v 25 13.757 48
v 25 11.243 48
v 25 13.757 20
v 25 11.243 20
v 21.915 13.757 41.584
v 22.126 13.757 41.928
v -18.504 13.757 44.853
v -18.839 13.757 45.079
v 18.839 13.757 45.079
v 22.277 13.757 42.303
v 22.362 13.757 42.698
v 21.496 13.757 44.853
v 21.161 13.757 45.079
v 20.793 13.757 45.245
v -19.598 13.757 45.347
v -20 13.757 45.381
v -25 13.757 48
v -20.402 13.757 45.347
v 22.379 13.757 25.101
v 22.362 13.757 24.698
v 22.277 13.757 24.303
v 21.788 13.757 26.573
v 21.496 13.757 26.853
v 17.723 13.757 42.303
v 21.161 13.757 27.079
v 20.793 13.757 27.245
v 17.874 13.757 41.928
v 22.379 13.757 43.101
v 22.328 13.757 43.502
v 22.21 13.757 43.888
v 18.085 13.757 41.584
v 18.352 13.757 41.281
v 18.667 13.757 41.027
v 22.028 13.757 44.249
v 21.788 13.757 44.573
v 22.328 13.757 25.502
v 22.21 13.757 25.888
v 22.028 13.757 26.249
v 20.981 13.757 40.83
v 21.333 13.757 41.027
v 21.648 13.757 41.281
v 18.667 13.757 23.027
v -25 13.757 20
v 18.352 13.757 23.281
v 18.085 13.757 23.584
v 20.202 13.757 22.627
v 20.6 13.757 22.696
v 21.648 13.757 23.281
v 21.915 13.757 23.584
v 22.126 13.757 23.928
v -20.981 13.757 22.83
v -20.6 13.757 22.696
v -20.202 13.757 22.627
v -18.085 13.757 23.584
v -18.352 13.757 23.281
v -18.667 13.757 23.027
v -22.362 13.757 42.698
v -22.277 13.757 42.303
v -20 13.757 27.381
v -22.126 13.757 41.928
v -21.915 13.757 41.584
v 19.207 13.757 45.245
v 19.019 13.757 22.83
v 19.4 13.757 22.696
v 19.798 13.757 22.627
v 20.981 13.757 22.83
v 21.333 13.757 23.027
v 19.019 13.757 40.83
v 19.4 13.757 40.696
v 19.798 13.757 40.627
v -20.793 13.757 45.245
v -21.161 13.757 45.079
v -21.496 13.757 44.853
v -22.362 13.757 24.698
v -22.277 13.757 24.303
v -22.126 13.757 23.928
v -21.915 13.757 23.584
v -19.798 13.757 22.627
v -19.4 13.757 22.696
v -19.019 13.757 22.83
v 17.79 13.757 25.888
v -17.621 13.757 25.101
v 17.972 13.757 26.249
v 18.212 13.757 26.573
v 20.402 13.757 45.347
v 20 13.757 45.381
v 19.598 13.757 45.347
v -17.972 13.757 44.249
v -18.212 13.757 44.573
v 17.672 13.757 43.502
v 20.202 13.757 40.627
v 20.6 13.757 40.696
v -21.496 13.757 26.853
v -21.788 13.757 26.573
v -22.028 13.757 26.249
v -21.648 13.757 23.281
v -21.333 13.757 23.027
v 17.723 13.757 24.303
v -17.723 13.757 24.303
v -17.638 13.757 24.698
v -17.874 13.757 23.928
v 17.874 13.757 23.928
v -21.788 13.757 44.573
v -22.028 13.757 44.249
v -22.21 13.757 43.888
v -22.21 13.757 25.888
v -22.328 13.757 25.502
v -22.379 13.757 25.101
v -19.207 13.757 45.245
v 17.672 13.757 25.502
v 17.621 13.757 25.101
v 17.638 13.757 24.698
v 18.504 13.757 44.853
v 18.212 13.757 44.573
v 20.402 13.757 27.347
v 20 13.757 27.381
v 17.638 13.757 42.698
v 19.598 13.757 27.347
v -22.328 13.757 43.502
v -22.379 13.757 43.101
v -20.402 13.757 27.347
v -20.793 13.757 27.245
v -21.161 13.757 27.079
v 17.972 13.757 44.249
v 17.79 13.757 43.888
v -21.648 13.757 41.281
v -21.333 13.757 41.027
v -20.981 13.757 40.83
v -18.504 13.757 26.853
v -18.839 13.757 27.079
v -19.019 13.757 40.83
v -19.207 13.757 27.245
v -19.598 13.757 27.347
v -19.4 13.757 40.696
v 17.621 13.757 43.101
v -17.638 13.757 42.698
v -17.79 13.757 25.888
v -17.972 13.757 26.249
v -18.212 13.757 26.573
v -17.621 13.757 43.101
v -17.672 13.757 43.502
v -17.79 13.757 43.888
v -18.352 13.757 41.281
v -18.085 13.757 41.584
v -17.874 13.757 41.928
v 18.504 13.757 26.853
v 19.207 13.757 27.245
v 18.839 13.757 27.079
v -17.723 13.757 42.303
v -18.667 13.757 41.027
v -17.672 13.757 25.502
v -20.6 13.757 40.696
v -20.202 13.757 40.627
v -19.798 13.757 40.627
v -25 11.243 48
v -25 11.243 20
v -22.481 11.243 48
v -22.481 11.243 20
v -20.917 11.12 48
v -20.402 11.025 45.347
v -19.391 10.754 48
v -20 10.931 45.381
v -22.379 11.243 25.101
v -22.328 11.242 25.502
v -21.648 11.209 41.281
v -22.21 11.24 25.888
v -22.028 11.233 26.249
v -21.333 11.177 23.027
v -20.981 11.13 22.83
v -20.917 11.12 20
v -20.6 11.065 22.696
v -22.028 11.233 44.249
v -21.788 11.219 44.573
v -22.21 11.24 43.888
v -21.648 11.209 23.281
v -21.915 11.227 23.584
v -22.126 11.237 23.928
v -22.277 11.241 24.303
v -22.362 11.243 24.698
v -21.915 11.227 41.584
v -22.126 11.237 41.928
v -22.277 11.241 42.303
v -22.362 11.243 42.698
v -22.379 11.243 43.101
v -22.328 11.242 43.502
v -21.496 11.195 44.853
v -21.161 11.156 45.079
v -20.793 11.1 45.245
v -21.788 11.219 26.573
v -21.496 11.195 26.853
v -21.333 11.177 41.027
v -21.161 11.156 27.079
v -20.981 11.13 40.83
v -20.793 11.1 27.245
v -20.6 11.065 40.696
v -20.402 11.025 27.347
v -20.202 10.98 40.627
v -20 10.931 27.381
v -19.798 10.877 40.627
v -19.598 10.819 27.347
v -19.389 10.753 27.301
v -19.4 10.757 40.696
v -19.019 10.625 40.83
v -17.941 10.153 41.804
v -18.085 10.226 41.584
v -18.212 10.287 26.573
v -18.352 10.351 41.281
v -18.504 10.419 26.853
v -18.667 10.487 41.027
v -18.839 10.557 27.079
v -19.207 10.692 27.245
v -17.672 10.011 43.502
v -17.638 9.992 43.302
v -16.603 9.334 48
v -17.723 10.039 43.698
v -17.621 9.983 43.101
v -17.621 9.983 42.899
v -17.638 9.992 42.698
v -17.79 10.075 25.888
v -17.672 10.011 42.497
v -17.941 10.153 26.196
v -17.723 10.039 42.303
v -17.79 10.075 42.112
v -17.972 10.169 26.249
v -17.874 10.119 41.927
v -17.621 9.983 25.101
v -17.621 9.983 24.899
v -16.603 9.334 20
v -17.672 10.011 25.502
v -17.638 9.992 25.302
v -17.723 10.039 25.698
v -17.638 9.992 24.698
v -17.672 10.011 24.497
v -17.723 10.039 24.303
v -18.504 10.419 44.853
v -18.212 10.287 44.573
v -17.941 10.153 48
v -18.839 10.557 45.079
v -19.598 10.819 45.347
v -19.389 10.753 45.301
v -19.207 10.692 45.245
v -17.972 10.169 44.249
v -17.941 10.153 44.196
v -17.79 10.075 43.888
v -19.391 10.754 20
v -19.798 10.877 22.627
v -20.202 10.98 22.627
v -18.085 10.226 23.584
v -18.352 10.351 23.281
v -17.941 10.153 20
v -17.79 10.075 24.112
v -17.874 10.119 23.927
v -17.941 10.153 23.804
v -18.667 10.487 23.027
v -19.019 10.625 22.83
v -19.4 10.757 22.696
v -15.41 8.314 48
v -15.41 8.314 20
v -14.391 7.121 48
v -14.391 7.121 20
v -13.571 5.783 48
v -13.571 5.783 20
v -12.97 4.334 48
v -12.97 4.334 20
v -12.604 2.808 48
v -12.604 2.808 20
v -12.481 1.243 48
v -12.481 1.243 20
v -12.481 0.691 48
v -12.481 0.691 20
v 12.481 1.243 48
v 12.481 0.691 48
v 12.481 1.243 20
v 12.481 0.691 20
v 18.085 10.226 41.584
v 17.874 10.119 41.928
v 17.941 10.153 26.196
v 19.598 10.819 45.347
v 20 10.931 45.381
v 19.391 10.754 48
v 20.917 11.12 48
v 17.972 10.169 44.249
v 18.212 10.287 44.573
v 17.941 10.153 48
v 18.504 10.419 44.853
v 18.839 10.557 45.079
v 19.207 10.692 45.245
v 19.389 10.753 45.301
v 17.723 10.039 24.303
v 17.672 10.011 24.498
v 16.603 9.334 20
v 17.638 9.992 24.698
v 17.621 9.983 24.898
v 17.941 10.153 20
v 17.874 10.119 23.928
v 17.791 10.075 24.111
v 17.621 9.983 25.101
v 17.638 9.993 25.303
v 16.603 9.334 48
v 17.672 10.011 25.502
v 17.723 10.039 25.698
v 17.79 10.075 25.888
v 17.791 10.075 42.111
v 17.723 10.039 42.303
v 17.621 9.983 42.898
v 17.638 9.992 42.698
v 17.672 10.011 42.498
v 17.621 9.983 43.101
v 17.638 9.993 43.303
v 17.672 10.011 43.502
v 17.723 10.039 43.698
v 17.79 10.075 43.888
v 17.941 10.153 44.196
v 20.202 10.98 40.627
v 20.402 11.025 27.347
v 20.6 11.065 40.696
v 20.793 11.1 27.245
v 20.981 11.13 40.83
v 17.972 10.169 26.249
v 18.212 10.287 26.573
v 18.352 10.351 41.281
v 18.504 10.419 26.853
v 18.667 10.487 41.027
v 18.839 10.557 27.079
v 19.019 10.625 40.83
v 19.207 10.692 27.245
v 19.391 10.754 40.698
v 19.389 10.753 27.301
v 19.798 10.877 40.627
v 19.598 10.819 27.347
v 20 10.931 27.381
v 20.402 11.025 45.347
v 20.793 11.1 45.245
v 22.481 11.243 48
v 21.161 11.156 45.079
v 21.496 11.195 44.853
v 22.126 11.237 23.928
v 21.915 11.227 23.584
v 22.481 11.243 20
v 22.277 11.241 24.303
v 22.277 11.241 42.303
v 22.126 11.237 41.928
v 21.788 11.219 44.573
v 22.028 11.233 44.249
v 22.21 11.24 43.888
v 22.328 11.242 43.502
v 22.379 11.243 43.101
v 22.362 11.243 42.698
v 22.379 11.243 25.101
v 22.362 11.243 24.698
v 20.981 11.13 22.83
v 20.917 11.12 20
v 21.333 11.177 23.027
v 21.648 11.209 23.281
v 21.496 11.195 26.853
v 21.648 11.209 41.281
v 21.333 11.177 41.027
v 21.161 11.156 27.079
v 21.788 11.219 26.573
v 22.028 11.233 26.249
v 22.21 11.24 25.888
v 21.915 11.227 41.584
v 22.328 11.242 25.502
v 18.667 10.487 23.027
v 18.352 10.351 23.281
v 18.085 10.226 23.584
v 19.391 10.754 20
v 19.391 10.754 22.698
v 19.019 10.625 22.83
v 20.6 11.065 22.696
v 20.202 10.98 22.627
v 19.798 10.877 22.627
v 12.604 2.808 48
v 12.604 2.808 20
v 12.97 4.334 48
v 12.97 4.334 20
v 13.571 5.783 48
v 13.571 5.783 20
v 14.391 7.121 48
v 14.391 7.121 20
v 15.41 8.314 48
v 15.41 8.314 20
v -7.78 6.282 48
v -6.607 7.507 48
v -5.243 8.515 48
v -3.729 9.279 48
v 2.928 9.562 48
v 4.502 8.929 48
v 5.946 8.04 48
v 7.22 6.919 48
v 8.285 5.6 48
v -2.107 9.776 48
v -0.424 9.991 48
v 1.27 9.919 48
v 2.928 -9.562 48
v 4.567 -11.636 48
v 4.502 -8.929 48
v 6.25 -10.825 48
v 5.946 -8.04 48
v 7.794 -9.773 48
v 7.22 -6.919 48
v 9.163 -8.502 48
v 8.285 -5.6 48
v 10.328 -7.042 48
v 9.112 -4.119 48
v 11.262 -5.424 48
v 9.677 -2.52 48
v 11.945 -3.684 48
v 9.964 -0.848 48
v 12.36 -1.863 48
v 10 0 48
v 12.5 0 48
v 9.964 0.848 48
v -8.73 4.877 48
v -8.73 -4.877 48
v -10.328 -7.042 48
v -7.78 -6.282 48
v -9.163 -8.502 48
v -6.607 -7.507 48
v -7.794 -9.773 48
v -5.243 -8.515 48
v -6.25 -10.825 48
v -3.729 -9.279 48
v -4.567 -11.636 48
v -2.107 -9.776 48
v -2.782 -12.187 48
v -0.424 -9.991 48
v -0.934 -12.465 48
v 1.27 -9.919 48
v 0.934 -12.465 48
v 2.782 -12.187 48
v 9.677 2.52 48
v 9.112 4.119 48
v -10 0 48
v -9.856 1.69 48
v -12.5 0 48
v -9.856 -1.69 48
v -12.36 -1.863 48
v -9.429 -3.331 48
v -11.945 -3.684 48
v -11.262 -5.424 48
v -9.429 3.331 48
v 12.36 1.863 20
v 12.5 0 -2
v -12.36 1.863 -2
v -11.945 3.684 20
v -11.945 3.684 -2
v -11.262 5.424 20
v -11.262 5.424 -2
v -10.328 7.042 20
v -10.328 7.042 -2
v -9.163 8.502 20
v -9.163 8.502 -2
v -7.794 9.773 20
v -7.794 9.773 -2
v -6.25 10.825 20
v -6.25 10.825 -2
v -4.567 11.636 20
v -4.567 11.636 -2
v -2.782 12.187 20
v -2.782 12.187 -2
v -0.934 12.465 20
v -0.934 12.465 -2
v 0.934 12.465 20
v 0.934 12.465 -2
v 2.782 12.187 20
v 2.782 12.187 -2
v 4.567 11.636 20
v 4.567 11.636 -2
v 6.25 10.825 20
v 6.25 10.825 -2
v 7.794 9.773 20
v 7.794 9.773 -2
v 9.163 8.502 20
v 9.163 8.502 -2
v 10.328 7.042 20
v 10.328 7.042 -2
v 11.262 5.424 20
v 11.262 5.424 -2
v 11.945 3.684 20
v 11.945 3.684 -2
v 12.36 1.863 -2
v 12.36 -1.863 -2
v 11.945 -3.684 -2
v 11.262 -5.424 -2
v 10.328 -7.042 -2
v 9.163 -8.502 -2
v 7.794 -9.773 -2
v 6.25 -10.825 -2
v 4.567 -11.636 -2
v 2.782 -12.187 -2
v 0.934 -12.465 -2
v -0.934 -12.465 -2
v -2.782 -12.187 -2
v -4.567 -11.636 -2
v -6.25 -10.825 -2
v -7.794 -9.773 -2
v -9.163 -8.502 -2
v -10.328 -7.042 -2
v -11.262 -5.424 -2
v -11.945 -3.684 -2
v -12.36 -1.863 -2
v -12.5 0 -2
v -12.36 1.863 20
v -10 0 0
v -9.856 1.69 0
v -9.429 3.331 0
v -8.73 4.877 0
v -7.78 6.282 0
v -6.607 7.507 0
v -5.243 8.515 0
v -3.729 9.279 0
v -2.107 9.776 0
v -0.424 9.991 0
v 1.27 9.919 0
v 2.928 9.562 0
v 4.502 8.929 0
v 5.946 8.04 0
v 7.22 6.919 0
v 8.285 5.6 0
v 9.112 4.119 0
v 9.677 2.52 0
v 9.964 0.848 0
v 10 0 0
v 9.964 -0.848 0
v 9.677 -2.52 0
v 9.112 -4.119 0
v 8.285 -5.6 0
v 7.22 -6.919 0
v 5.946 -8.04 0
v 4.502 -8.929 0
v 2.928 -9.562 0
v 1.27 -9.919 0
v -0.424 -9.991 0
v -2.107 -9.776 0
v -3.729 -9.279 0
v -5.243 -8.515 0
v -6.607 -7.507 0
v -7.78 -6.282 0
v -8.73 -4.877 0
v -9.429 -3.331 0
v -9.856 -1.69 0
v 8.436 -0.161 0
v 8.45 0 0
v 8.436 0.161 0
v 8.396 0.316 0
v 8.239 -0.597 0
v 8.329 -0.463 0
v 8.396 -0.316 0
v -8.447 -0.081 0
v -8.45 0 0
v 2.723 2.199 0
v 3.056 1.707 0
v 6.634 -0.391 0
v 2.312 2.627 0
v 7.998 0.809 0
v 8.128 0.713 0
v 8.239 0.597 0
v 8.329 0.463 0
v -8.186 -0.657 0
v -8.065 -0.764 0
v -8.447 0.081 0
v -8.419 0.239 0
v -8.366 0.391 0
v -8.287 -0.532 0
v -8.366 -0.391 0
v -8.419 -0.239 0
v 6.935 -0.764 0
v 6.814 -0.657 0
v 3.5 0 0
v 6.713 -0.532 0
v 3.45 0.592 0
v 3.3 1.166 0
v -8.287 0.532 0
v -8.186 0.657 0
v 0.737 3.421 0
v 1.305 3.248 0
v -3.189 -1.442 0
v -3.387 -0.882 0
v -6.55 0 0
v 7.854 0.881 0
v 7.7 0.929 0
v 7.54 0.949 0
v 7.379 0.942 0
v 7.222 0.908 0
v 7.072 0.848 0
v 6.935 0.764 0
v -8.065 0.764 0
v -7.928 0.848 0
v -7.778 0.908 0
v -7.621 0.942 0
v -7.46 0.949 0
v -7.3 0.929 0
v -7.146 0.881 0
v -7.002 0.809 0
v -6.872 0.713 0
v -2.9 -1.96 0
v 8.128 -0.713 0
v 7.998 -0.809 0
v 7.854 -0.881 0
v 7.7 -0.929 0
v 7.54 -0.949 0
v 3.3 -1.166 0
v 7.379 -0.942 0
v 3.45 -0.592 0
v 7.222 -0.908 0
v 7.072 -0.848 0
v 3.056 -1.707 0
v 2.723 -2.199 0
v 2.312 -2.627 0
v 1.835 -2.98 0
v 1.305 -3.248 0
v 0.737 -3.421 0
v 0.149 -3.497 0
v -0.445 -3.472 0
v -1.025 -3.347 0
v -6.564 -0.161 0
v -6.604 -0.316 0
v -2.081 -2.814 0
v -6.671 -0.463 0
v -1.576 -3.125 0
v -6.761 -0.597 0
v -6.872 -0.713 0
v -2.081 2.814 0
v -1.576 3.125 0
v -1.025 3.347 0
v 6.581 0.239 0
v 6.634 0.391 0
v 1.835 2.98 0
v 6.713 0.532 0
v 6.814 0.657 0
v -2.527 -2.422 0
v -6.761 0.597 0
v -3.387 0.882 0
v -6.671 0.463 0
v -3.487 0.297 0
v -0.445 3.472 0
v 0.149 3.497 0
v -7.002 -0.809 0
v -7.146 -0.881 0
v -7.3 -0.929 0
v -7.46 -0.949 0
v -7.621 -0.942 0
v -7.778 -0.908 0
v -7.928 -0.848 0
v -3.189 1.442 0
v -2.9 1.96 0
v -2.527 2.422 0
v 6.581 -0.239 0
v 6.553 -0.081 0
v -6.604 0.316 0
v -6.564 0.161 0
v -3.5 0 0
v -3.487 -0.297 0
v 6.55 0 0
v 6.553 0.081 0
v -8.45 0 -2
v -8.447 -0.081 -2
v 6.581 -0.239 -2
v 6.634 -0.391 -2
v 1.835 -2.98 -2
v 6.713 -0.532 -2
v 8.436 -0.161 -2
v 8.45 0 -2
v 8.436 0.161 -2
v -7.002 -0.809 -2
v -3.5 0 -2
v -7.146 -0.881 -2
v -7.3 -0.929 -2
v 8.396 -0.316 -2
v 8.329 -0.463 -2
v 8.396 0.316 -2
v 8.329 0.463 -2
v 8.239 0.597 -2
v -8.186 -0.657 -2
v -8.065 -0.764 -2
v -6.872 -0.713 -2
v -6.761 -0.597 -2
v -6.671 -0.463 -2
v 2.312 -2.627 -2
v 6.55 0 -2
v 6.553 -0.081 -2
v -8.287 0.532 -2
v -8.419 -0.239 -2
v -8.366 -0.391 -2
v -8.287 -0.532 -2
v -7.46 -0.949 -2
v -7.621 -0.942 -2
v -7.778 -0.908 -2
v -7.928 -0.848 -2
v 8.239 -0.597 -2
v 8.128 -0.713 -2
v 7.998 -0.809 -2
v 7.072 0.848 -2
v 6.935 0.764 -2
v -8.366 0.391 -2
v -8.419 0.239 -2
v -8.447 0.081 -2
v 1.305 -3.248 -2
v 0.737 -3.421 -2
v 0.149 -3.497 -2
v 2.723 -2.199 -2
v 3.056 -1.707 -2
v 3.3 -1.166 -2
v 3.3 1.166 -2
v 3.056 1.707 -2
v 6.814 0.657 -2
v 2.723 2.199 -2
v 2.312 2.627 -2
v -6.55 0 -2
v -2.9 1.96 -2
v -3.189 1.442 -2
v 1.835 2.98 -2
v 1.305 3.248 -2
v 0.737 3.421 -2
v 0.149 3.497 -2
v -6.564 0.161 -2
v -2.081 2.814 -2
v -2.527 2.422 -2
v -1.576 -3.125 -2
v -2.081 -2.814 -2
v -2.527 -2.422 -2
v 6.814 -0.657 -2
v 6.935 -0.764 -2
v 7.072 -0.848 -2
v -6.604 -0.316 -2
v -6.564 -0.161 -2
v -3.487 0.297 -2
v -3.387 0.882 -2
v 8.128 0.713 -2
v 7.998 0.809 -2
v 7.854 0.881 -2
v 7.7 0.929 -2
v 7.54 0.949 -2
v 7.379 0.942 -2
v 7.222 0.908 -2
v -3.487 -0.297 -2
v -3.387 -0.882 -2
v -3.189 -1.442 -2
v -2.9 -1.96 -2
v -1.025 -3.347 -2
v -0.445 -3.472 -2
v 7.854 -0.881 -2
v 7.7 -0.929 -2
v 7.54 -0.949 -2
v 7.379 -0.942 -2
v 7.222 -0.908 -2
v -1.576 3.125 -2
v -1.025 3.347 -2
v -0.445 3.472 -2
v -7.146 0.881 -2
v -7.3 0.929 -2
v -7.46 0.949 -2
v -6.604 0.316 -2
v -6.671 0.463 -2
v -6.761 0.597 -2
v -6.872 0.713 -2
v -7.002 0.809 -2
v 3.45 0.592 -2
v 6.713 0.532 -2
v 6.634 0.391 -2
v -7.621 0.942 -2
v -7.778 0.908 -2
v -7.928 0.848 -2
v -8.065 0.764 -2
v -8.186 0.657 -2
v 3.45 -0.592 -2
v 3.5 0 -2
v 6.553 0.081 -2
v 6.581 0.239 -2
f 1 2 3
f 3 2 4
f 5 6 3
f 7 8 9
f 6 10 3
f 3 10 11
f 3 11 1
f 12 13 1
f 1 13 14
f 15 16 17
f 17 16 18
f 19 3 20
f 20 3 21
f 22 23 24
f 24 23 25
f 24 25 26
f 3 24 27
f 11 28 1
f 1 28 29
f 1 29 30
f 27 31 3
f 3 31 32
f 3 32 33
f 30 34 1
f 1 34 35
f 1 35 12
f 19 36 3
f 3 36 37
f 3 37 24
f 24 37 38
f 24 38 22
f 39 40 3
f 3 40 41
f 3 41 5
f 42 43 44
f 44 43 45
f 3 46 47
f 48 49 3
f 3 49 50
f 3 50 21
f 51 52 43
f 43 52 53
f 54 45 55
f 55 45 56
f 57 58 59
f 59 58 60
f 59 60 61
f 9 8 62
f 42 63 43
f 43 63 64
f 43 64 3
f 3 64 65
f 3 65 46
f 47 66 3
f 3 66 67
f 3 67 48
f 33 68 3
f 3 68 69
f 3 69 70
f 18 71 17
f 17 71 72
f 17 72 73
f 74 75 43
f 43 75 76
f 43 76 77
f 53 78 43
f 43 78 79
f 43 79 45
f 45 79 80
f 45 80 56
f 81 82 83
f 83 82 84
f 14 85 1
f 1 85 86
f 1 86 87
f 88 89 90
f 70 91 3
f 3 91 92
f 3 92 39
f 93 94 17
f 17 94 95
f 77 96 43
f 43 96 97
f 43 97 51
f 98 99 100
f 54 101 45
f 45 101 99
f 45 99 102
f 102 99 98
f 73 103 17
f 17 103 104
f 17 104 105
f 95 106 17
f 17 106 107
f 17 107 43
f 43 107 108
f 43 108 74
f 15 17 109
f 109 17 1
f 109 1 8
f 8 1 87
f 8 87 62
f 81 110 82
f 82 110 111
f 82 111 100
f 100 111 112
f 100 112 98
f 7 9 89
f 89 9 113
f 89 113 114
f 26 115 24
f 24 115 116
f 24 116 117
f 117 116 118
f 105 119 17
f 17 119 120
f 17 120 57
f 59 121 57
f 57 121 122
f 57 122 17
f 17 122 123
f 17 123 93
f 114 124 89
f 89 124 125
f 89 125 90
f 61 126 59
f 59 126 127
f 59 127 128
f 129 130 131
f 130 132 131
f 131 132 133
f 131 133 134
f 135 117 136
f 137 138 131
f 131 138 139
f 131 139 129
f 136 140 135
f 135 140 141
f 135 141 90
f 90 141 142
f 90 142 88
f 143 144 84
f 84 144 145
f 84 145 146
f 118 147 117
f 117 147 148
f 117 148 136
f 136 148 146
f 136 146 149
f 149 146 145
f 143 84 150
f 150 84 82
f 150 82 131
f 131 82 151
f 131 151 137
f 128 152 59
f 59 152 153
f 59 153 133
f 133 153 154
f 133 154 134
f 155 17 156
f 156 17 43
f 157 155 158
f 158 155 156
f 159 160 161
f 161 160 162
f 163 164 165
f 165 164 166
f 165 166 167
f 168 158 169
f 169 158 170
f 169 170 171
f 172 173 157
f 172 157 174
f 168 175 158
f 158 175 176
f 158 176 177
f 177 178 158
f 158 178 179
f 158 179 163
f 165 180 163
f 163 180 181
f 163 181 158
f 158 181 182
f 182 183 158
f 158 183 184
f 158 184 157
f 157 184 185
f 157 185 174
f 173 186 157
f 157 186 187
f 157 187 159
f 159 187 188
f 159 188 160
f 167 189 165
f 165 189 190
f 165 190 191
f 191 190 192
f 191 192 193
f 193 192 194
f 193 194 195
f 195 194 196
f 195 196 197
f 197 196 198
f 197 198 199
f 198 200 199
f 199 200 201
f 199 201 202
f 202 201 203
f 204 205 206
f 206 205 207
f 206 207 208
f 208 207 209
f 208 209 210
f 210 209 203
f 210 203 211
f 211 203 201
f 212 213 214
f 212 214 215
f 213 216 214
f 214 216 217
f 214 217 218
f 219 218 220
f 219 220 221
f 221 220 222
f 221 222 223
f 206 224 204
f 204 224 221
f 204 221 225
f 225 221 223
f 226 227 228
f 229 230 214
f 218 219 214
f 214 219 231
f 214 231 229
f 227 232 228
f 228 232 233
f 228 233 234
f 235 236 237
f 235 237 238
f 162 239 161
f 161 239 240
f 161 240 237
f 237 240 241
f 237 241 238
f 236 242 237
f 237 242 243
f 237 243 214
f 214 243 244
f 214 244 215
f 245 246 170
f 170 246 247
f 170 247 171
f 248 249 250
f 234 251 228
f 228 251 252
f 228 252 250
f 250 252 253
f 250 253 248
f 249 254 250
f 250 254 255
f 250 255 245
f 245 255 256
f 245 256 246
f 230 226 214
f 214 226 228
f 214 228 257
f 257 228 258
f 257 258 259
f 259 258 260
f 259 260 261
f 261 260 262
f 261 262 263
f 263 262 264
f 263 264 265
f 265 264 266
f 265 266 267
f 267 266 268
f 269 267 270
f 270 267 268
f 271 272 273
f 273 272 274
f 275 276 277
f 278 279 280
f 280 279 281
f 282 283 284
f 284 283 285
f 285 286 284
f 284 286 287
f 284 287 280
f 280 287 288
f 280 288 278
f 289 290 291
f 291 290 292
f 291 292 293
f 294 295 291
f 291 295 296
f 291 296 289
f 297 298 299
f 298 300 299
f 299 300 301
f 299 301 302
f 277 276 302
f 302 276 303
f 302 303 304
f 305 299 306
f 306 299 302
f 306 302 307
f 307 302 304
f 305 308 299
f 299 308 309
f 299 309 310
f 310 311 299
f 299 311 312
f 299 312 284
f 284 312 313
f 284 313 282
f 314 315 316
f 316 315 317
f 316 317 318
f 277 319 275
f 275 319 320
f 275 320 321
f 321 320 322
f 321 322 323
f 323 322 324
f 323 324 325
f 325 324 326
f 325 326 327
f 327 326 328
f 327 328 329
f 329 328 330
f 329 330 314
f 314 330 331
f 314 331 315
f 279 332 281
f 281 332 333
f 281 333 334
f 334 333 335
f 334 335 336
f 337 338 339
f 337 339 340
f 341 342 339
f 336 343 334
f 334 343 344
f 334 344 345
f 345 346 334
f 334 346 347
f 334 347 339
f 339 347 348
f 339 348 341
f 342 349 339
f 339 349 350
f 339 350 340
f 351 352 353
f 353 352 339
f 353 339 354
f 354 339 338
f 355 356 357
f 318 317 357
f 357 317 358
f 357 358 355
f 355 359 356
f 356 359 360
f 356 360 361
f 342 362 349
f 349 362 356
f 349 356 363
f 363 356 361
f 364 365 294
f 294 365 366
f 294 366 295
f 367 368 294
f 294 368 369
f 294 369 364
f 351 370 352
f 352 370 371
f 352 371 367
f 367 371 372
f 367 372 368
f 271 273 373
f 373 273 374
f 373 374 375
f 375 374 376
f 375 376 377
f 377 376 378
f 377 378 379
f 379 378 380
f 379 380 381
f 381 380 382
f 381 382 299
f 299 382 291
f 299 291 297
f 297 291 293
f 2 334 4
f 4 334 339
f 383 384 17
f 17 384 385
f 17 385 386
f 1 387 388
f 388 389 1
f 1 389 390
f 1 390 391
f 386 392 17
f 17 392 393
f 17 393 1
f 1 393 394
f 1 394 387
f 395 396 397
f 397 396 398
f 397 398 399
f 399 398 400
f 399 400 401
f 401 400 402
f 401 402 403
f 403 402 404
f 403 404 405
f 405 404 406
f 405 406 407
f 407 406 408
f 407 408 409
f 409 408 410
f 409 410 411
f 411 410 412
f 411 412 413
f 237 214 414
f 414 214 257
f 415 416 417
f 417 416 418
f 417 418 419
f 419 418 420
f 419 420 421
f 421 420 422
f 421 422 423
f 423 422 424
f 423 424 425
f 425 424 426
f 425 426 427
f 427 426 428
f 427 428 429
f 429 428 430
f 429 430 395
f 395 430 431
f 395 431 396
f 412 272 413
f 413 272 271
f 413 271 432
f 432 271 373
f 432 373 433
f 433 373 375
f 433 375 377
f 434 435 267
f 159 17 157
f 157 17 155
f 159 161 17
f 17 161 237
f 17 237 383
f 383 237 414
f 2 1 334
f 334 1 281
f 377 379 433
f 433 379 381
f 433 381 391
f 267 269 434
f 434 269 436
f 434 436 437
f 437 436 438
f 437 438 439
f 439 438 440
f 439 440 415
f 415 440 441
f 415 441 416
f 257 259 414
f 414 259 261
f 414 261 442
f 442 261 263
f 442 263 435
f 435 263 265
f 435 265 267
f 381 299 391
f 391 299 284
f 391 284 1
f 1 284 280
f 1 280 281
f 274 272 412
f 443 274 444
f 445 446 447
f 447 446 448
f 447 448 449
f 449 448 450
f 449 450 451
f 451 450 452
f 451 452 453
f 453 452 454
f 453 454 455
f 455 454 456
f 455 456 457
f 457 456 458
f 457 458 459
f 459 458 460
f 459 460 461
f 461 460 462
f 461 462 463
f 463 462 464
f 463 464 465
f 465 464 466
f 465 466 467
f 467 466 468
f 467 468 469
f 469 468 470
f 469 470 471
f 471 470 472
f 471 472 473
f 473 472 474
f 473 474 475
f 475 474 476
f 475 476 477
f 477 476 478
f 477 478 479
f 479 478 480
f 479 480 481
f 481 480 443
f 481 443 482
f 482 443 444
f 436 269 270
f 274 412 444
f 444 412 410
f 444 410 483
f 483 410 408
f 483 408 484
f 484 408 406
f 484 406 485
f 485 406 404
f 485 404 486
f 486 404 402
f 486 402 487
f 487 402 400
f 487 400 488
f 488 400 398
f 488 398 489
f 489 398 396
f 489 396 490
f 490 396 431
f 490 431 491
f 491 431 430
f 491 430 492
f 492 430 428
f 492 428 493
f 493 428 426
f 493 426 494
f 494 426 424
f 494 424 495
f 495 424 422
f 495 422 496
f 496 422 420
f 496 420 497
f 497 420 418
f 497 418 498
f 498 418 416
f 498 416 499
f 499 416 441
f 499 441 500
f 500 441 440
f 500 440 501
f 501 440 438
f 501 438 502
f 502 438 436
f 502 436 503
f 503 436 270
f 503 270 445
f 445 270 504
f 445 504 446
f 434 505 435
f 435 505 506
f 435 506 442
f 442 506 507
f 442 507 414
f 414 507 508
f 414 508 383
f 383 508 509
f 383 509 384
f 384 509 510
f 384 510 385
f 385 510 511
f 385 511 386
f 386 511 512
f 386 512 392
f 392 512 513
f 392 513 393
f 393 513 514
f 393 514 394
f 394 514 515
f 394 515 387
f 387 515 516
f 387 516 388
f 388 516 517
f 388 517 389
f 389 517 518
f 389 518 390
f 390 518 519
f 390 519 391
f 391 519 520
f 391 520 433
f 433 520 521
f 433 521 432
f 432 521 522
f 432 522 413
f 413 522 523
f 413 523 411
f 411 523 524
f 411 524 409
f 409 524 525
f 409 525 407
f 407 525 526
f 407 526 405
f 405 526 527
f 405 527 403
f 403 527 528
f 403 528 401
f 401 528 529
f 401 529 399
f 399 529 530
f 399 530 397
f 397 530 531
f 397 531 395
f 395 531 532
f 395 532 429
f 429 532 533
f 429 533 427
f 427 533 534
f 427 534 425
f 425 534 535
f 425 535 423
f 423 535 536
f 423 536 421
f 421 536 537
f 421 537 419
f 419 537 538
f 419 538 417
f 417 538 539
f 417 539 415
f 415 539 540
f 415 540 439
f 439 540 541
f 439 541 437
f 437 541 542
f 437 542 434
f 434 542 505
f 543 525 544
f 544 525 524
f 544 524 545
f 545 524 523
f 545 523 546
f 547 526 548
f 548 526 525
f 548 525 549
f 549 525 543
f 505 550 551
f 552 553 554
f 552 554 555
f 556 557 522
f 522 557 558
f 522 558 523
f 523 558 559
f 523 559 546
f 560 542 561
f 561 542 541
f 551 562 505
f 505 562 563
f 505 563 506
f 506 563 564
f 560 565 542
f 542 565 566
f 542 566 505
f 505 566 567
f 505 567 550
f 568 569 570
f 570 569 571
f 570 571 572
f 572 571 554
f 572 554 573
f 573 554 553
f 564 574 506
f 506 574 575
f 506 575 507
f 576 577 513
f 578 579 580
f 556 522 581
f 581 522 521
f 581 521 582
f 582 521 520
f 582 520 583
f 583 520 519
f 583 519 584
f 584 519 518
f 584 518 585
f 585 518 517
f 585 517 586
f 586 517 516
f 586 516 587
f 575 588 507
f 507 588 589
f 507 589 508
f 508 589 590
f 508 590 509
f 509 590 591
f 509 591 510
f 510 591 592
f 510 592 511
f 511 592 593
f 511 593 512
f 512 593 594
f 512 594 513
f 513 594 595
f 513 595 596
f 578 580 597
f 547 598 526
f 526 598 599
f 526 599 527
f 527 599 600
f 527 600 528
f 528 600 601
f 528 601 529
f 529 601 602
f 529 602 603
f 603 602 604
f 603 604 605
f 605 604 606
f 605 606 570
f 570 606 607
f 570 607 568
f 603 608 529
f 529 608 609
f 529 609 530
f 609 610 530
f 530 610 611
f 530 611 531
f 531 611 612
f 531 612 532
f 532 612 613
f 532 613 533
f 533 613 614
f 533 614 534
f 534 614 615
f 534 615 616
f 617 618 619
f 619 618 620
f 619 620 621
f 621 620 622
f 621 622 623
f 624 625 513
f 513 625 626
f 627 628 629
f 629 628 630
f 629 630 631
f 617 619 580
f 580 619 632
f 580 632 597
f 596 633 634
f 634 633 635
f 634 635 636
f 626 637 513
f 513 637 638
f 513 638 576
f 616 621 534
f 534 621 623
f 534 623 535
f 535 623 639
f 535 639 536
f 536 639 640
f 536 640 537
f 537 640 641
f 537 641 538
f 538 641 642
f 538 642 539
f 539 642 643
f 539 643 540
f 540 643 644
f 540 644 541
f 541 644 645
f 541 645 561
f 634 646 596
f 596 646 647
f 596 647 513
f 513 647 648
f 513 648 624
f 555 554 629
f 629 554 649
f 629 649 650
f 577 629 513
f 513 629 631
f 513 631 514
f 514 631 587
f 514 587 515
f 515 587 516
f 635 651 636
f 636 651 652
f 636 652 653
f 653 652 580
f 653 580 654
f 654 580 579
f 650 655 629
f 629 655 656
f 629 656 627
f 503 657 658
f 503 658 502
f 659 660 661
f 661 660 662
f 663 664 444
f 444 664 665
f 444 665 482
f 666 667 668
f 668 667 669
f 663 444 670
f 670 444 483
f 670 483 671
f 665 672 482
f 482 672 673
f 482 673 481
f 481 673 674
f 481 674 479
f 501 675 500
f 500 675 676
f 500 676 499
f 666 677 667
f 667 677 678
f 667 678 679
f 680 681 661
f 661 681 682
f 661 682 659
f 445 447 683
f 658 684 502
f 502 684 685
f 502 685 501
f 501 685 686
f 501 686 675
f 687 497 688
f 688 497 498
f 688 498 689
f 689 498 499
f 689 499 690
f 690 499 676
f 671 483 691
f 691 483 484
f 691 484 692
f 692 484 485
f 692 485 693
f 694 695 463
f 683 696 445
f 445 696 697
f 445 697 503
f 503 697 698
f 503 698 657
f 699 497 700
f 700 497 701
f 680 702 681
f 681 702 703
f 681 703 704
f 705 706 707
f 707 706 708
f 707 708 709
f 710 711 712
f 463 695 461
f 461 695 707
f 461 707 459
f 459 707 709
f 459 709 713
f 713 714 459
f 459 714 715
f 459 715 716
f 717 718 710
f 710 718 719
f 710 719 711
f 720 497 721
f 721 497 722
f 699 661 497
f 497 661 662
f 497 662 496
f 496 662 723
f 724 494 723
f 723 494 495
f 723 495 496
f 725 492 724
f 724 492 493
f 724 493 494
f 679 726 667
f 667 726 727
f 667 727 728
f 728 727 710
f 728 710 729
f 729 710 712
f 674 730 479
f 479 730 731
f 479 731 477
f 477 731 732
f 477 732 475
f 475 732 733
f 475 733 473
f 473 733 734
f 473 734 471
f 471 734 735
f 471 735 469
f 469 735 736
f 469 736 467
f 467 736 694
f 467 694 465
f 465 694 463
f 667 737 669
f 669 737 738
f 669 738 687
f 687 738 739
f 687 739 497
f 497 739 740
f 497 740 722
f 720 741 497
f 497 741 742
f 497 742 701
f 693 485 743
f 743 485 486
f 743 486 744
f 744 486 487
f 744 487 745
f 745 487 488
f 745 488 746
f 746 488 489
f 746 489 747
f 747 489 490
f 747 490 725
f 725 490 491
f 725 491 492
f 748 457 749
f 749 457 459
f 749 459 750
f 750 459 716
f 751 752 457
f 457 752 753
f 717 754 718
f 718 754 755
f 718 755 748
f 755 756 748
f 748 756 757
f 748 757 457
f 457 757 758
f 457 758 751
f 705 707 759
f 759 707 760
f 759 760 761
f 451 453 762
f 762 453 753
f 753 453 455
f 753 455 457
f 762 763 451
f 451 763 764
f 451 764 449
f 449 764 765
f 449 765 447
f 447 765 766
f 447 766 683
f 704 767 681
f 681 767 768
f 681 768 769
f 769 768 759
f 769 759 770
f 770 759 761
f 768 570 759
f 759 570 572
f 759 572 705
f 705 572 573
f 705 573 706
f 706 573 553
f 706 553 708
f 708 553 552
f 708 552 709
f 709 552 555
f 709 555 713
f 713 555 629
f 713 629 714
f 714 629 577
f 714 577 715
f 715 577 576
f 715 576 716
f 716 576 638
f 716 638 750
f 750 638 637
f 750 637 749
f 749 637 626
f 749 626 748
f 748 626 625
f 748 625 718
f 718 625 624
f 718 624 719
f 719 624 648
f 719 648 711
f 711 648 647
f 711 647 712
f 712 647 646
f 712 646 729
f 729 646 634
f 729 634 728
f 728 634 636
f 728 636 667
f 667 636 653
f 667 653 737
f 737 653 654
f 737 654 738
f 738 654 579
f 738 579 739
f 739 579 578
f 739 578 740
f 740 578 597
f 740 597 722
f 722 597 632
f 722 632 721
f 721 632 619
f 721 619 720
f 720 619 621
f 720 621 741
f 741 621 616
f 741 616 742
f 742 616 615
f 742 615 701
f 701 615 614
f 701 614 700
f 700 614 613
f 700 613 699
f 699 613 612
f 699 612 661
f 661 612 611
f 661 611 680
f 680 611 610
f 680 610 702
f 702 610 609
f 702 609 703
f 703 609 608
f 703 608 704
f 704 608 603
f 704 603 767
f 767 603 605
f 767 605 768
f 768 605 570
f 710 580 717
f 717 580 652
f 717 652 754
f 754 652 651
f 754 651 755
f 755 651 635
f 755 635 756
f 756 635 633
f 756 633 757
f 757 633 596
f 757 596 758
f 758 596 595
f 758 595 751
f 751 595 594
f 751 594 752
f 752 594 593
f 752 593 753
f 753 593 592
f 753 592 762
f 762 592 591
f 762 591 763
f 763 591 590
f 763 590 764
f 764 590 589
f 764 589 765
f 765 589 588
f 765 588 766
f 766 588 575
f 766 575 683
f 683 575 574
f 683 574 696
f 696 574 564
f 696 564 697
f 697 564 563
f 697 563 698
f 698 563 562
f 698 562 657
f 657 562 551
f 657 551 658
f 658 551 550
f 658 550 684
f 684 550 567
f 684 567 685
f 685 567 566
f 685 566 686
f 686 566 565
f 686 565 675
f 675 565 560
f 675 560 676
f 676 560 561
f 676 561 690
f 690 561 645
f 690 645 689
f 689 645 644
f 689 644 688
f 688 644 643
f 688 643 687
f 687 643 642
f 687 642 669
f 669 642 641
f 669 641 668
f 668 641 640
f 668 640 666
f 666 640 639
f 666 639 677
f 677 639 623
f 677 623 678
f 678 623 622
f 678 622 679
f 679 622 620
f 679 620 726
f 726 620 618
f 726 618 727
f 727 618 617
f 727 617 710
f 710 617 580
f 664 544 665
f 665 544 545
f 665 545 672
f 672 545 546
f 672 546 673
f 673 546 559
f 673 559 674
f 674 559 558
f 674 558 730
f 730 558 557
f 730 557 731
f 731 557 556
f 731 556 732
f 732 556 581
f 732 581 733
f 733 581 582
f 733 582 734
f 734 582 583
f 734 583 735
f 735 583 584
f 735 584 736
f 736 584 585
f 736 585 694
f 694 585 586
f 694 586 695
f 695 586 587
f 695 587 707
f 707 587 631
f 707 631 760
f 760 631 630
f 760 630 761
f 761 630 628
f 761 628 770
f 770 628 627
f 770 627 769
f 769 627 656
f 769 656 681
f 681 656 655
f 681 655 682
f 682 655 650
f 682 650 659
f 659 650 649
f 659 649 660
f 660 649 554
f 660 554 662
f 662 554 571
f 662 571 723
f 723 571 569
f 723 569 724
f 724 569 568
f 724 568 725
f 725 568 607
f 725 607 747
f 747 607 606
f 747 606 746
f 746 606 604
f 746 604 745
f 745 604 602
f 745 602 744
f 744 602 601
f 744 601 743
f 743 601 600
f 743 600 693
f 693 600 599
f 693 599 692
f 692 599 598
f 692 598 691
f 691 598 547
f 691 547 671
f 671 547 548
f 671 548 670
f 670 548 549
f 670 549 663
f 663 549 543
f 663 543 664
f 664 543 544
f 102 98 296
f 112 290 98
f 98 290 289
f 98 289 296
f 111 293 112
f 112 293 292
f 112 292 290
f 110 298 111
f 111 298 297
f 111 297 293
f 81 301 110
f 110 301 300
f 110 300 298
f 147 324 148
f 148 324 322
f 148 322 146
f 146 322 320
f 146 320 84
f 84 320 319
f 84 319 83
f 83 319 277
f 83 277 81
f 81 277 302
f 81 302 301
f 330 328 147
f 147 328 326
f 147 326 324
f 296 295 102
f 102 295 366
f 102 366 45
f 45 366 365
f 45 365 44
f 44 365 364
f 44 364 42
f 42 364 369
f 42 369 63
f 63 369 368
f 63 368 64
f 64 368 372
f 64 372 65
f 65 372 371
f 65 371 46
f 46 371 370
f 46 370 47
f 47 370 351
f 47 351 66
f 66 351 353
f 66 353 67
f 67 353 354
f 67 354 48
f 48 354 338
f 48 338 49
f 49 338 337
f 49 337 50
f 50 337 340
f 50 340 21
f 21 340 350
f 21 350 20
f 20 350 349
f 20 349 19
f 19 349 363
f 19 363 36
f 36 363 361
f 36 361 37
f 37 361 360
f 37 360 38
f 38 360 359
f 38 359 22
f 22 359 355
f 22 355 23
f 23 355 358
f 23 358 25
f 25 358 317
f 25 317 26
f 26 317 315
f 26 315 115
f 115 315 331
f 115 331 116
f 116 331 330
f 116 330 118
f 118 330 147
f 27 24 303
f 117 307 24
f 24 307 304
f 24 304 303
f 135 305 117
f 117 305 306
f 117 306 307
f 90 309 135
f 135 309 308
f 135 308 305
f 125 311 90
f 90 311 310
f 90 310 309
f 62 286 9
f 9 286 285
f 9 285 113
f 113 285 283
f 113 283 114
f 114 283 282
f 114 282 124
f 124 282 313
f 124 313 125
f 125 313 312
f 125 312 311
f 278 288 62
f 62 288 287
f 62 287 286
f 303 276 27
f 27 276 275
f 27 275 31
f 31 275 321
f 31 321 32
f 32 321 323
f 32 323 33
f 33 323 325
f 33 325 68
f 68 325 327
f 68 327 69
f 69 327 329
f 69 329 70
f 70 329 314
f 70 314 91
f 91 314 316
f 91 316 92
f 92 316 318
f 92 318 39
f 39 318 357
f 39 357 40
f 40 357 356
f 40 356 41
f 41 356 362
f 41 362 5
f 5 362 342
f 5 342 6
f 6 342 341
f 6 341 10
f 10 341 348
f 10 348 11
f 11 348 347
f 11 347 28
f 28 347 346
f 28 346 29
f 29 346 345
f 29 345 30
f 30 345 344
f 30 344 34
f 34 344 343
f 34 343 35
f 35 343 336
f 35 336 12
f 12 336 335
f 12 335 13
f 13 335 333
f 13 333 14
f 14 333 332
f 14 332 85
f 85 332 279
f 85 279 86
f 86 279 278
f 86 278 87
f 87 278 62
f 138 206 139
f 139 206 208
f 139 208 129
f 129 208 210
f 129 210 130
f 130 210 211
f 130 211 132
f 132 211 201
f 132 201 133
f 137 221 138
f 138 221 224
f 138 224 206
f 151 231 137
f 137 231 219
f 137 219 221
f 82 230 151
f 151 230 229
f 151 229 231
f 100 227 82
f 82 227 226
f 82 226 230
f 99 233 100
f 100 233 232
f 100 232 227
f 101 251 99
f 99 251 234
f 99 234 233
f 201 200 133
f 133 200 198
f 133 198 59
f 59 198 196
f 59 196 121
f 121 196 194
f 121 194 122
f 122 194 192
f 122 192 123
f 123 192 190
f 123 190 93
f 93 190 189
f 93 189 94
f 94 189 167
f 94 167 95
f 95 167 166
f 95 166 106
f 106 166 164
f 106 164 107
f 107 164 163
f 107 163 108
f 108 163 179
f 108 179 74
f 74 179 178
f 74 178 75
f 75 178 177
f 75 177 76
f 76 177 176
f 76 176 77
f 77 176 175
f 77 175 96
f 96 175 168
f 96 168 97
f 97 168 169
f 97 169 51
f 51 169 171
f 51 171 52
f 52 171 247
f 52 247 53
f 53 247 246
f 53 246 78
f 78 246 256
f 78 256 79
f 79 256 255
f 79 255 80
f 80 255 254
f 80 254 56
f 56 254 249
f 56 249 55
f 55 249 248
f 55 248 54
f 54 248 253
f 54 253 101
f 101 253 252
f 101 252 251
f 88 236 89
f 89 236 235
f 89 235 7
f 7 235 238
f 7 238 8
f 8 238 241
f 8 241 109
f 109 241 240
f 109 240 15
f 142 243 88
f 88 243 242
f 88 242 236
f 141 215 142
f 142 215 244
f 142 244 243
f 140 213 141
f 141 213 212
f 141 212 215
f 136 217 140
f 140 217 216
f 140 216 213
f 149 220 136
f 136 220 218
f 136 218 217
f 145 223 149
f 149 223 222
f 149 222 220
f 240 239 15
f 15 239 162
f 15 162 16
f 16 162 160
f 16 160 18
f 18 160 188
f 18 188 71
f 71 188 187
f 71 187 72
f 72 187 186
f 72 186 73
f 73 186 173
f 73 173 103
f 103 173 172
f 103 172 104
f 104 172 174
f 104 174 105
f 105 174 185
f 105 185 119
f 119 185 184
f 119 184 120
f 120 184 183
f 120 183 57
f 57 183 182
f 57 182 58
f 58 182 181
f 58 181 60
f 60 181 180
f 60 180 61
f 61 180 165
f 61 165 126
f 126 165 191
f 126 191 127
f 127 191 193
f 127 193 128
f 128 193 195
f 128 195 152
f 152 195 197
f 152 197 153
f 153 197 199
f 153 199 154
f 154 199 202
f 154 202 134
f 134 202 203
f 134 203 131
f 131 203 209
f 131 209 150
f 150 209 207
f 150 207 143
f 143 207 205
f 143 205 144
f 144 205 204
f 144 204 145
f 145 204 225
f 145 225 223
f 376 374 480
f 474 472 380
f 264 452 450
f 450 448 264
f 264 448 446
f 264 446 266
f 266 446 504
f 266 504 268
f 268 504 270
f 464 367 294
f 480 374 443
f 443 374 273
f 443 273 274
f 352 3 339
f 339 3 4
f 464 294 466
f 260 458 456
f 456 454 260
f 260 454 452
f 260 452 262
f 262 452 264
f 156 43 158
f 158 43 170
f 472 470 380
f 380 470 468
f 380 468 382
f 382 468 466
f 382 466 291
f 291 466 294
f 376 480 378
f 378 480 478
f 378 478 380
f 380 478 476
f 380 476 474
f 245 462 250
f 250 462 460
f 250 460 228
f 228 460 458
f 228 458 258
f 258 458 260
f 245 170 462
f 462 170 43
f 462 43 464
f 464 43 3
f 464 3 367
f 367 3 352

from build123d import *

# Parameters (mm, degrees)
SKETCH1_R           = 10
BOSS_EXTRUDE1_DEPTH = 48
BOSS_EXTRUDE3_START = 2
SKETCH3_R           = 12.5
SKETCH3_R_2         = 3.5
SKETCH3_R_3         = 0.95
BOSS_EXTRUDE3_DEPTH = 2
SKETCH4_R           = 2.38125
CUT_EXTRUDE1_DEPTH  = 61.153219082
SKETCH6_W           = 58.309477214
SKETCH6_H           = 41.572471276
SKETCH6_R           = 12.5
CUT_EXTRUDE4_DEPTH  = 22


with BuildPart() as part:
    # Sketch1 → Boss-Extrude1 (new body)
    with BuildSketch(Plane.XY):
        with BuildLine():
            Line((-25, 13.756613757), (-25, 11.243386243))
            Line((-25, 11.243386243), (-22.480898871, 11.243386243))
            ThreePointArc((-22.480898871, 11.243386243), (-15.409831059, 8.314454055), (-12.480898871, 1.243386243))
            Line((-12.480898871, 1.243386243), (-12.480898871, 0.690770135))
            ThreePointArc((-12.480898871, 0.690770135), (0, -12.5), (12.480898871, 0.690770135))
            Line((12.480898871, 0.690770135), (12.480898871, 1.243386243))
            ThreePointArc((12.480898871, 1.243386243), (15.409831059, 8.314454055), (22.480898871, 11.243386243))
            Line((22.480898871, 11.243386243), (25, 11.243386243))
            Line((25, 11.243386243), (25, 13.756613757))
            Line((25, 13.756613757), (-25, 13.756613757))
        make_face()
        Circle(SKETCH1_R, mode=Mode.SUBTRACT)
    extrude(amount=BOSS_EXTRUDE1_DEPTH)

    # Sketch3 → Boss-Extrude3 (add)
    with BuildSketch(Plane(origin=(0, 0, 0), x_dir=(-1, 0, 0), z_dir=(0, 0, -1)).offset(BOSS_EXTRUDE3_START)):
        Circle(SKETCH3_R)
        Circle(SKETCH3_R_2, mode=Mode.SUBTRACT)
        with Locations((7.5, 0)):
            Circle(SKETCH3_R_3, mode=Mode.SUBTRACT)
        with Locations((-7.5, 0)):
            Circle(SKETCH3_R_3, mode=Mode.SUBTRACT)
    extrude(amount=-BOSS_EXTRUDE3_DEPTH)

    # Sketch4 → Cut-Extrude1 (cut, through all)
    with BuildSketch(Plane(origin=(0, 13.756613757, 0), x_dir=(1, 0, 0), z_dir=(0, 1, 0))):
        with Locations(Location((-20, -25, 0), (0, 0, 270))):
            Circle(SKETCH4_R)
        with Locations(Location((20, -25, 0), (0, 0, 270))):
            Circle(SKETCH4_R)
        with Locations(Location((20, -43, 0), (0, 0, 270))):
            Circle(SKETCH4_R)
        with Locations(Location((-20, -43, 0), (0, 0, 270))):
            Circle(SKETCH4_R)
    extrude(amount=-CUT_EXTRUDE1_DEPTH, mode=Mode.SUBTRACT)

    # Sketch6 → Cut-Extrude4 (cut)
    with BuildSketch(Plane(origin=(0, 0, -2), x_dir=(-1, 0, 0), z_dir=(0, 0, -1))):
        Rectangle(SKETCH6_W, SKETCH6_H)
        Circle(SKETCH6_R, mode=Mode.SUBTRACT)
    extrude(amount=-CUT_EXTRUDE4_DEPTH, mode=Mode.SUBTRACT)


solid = part.part
